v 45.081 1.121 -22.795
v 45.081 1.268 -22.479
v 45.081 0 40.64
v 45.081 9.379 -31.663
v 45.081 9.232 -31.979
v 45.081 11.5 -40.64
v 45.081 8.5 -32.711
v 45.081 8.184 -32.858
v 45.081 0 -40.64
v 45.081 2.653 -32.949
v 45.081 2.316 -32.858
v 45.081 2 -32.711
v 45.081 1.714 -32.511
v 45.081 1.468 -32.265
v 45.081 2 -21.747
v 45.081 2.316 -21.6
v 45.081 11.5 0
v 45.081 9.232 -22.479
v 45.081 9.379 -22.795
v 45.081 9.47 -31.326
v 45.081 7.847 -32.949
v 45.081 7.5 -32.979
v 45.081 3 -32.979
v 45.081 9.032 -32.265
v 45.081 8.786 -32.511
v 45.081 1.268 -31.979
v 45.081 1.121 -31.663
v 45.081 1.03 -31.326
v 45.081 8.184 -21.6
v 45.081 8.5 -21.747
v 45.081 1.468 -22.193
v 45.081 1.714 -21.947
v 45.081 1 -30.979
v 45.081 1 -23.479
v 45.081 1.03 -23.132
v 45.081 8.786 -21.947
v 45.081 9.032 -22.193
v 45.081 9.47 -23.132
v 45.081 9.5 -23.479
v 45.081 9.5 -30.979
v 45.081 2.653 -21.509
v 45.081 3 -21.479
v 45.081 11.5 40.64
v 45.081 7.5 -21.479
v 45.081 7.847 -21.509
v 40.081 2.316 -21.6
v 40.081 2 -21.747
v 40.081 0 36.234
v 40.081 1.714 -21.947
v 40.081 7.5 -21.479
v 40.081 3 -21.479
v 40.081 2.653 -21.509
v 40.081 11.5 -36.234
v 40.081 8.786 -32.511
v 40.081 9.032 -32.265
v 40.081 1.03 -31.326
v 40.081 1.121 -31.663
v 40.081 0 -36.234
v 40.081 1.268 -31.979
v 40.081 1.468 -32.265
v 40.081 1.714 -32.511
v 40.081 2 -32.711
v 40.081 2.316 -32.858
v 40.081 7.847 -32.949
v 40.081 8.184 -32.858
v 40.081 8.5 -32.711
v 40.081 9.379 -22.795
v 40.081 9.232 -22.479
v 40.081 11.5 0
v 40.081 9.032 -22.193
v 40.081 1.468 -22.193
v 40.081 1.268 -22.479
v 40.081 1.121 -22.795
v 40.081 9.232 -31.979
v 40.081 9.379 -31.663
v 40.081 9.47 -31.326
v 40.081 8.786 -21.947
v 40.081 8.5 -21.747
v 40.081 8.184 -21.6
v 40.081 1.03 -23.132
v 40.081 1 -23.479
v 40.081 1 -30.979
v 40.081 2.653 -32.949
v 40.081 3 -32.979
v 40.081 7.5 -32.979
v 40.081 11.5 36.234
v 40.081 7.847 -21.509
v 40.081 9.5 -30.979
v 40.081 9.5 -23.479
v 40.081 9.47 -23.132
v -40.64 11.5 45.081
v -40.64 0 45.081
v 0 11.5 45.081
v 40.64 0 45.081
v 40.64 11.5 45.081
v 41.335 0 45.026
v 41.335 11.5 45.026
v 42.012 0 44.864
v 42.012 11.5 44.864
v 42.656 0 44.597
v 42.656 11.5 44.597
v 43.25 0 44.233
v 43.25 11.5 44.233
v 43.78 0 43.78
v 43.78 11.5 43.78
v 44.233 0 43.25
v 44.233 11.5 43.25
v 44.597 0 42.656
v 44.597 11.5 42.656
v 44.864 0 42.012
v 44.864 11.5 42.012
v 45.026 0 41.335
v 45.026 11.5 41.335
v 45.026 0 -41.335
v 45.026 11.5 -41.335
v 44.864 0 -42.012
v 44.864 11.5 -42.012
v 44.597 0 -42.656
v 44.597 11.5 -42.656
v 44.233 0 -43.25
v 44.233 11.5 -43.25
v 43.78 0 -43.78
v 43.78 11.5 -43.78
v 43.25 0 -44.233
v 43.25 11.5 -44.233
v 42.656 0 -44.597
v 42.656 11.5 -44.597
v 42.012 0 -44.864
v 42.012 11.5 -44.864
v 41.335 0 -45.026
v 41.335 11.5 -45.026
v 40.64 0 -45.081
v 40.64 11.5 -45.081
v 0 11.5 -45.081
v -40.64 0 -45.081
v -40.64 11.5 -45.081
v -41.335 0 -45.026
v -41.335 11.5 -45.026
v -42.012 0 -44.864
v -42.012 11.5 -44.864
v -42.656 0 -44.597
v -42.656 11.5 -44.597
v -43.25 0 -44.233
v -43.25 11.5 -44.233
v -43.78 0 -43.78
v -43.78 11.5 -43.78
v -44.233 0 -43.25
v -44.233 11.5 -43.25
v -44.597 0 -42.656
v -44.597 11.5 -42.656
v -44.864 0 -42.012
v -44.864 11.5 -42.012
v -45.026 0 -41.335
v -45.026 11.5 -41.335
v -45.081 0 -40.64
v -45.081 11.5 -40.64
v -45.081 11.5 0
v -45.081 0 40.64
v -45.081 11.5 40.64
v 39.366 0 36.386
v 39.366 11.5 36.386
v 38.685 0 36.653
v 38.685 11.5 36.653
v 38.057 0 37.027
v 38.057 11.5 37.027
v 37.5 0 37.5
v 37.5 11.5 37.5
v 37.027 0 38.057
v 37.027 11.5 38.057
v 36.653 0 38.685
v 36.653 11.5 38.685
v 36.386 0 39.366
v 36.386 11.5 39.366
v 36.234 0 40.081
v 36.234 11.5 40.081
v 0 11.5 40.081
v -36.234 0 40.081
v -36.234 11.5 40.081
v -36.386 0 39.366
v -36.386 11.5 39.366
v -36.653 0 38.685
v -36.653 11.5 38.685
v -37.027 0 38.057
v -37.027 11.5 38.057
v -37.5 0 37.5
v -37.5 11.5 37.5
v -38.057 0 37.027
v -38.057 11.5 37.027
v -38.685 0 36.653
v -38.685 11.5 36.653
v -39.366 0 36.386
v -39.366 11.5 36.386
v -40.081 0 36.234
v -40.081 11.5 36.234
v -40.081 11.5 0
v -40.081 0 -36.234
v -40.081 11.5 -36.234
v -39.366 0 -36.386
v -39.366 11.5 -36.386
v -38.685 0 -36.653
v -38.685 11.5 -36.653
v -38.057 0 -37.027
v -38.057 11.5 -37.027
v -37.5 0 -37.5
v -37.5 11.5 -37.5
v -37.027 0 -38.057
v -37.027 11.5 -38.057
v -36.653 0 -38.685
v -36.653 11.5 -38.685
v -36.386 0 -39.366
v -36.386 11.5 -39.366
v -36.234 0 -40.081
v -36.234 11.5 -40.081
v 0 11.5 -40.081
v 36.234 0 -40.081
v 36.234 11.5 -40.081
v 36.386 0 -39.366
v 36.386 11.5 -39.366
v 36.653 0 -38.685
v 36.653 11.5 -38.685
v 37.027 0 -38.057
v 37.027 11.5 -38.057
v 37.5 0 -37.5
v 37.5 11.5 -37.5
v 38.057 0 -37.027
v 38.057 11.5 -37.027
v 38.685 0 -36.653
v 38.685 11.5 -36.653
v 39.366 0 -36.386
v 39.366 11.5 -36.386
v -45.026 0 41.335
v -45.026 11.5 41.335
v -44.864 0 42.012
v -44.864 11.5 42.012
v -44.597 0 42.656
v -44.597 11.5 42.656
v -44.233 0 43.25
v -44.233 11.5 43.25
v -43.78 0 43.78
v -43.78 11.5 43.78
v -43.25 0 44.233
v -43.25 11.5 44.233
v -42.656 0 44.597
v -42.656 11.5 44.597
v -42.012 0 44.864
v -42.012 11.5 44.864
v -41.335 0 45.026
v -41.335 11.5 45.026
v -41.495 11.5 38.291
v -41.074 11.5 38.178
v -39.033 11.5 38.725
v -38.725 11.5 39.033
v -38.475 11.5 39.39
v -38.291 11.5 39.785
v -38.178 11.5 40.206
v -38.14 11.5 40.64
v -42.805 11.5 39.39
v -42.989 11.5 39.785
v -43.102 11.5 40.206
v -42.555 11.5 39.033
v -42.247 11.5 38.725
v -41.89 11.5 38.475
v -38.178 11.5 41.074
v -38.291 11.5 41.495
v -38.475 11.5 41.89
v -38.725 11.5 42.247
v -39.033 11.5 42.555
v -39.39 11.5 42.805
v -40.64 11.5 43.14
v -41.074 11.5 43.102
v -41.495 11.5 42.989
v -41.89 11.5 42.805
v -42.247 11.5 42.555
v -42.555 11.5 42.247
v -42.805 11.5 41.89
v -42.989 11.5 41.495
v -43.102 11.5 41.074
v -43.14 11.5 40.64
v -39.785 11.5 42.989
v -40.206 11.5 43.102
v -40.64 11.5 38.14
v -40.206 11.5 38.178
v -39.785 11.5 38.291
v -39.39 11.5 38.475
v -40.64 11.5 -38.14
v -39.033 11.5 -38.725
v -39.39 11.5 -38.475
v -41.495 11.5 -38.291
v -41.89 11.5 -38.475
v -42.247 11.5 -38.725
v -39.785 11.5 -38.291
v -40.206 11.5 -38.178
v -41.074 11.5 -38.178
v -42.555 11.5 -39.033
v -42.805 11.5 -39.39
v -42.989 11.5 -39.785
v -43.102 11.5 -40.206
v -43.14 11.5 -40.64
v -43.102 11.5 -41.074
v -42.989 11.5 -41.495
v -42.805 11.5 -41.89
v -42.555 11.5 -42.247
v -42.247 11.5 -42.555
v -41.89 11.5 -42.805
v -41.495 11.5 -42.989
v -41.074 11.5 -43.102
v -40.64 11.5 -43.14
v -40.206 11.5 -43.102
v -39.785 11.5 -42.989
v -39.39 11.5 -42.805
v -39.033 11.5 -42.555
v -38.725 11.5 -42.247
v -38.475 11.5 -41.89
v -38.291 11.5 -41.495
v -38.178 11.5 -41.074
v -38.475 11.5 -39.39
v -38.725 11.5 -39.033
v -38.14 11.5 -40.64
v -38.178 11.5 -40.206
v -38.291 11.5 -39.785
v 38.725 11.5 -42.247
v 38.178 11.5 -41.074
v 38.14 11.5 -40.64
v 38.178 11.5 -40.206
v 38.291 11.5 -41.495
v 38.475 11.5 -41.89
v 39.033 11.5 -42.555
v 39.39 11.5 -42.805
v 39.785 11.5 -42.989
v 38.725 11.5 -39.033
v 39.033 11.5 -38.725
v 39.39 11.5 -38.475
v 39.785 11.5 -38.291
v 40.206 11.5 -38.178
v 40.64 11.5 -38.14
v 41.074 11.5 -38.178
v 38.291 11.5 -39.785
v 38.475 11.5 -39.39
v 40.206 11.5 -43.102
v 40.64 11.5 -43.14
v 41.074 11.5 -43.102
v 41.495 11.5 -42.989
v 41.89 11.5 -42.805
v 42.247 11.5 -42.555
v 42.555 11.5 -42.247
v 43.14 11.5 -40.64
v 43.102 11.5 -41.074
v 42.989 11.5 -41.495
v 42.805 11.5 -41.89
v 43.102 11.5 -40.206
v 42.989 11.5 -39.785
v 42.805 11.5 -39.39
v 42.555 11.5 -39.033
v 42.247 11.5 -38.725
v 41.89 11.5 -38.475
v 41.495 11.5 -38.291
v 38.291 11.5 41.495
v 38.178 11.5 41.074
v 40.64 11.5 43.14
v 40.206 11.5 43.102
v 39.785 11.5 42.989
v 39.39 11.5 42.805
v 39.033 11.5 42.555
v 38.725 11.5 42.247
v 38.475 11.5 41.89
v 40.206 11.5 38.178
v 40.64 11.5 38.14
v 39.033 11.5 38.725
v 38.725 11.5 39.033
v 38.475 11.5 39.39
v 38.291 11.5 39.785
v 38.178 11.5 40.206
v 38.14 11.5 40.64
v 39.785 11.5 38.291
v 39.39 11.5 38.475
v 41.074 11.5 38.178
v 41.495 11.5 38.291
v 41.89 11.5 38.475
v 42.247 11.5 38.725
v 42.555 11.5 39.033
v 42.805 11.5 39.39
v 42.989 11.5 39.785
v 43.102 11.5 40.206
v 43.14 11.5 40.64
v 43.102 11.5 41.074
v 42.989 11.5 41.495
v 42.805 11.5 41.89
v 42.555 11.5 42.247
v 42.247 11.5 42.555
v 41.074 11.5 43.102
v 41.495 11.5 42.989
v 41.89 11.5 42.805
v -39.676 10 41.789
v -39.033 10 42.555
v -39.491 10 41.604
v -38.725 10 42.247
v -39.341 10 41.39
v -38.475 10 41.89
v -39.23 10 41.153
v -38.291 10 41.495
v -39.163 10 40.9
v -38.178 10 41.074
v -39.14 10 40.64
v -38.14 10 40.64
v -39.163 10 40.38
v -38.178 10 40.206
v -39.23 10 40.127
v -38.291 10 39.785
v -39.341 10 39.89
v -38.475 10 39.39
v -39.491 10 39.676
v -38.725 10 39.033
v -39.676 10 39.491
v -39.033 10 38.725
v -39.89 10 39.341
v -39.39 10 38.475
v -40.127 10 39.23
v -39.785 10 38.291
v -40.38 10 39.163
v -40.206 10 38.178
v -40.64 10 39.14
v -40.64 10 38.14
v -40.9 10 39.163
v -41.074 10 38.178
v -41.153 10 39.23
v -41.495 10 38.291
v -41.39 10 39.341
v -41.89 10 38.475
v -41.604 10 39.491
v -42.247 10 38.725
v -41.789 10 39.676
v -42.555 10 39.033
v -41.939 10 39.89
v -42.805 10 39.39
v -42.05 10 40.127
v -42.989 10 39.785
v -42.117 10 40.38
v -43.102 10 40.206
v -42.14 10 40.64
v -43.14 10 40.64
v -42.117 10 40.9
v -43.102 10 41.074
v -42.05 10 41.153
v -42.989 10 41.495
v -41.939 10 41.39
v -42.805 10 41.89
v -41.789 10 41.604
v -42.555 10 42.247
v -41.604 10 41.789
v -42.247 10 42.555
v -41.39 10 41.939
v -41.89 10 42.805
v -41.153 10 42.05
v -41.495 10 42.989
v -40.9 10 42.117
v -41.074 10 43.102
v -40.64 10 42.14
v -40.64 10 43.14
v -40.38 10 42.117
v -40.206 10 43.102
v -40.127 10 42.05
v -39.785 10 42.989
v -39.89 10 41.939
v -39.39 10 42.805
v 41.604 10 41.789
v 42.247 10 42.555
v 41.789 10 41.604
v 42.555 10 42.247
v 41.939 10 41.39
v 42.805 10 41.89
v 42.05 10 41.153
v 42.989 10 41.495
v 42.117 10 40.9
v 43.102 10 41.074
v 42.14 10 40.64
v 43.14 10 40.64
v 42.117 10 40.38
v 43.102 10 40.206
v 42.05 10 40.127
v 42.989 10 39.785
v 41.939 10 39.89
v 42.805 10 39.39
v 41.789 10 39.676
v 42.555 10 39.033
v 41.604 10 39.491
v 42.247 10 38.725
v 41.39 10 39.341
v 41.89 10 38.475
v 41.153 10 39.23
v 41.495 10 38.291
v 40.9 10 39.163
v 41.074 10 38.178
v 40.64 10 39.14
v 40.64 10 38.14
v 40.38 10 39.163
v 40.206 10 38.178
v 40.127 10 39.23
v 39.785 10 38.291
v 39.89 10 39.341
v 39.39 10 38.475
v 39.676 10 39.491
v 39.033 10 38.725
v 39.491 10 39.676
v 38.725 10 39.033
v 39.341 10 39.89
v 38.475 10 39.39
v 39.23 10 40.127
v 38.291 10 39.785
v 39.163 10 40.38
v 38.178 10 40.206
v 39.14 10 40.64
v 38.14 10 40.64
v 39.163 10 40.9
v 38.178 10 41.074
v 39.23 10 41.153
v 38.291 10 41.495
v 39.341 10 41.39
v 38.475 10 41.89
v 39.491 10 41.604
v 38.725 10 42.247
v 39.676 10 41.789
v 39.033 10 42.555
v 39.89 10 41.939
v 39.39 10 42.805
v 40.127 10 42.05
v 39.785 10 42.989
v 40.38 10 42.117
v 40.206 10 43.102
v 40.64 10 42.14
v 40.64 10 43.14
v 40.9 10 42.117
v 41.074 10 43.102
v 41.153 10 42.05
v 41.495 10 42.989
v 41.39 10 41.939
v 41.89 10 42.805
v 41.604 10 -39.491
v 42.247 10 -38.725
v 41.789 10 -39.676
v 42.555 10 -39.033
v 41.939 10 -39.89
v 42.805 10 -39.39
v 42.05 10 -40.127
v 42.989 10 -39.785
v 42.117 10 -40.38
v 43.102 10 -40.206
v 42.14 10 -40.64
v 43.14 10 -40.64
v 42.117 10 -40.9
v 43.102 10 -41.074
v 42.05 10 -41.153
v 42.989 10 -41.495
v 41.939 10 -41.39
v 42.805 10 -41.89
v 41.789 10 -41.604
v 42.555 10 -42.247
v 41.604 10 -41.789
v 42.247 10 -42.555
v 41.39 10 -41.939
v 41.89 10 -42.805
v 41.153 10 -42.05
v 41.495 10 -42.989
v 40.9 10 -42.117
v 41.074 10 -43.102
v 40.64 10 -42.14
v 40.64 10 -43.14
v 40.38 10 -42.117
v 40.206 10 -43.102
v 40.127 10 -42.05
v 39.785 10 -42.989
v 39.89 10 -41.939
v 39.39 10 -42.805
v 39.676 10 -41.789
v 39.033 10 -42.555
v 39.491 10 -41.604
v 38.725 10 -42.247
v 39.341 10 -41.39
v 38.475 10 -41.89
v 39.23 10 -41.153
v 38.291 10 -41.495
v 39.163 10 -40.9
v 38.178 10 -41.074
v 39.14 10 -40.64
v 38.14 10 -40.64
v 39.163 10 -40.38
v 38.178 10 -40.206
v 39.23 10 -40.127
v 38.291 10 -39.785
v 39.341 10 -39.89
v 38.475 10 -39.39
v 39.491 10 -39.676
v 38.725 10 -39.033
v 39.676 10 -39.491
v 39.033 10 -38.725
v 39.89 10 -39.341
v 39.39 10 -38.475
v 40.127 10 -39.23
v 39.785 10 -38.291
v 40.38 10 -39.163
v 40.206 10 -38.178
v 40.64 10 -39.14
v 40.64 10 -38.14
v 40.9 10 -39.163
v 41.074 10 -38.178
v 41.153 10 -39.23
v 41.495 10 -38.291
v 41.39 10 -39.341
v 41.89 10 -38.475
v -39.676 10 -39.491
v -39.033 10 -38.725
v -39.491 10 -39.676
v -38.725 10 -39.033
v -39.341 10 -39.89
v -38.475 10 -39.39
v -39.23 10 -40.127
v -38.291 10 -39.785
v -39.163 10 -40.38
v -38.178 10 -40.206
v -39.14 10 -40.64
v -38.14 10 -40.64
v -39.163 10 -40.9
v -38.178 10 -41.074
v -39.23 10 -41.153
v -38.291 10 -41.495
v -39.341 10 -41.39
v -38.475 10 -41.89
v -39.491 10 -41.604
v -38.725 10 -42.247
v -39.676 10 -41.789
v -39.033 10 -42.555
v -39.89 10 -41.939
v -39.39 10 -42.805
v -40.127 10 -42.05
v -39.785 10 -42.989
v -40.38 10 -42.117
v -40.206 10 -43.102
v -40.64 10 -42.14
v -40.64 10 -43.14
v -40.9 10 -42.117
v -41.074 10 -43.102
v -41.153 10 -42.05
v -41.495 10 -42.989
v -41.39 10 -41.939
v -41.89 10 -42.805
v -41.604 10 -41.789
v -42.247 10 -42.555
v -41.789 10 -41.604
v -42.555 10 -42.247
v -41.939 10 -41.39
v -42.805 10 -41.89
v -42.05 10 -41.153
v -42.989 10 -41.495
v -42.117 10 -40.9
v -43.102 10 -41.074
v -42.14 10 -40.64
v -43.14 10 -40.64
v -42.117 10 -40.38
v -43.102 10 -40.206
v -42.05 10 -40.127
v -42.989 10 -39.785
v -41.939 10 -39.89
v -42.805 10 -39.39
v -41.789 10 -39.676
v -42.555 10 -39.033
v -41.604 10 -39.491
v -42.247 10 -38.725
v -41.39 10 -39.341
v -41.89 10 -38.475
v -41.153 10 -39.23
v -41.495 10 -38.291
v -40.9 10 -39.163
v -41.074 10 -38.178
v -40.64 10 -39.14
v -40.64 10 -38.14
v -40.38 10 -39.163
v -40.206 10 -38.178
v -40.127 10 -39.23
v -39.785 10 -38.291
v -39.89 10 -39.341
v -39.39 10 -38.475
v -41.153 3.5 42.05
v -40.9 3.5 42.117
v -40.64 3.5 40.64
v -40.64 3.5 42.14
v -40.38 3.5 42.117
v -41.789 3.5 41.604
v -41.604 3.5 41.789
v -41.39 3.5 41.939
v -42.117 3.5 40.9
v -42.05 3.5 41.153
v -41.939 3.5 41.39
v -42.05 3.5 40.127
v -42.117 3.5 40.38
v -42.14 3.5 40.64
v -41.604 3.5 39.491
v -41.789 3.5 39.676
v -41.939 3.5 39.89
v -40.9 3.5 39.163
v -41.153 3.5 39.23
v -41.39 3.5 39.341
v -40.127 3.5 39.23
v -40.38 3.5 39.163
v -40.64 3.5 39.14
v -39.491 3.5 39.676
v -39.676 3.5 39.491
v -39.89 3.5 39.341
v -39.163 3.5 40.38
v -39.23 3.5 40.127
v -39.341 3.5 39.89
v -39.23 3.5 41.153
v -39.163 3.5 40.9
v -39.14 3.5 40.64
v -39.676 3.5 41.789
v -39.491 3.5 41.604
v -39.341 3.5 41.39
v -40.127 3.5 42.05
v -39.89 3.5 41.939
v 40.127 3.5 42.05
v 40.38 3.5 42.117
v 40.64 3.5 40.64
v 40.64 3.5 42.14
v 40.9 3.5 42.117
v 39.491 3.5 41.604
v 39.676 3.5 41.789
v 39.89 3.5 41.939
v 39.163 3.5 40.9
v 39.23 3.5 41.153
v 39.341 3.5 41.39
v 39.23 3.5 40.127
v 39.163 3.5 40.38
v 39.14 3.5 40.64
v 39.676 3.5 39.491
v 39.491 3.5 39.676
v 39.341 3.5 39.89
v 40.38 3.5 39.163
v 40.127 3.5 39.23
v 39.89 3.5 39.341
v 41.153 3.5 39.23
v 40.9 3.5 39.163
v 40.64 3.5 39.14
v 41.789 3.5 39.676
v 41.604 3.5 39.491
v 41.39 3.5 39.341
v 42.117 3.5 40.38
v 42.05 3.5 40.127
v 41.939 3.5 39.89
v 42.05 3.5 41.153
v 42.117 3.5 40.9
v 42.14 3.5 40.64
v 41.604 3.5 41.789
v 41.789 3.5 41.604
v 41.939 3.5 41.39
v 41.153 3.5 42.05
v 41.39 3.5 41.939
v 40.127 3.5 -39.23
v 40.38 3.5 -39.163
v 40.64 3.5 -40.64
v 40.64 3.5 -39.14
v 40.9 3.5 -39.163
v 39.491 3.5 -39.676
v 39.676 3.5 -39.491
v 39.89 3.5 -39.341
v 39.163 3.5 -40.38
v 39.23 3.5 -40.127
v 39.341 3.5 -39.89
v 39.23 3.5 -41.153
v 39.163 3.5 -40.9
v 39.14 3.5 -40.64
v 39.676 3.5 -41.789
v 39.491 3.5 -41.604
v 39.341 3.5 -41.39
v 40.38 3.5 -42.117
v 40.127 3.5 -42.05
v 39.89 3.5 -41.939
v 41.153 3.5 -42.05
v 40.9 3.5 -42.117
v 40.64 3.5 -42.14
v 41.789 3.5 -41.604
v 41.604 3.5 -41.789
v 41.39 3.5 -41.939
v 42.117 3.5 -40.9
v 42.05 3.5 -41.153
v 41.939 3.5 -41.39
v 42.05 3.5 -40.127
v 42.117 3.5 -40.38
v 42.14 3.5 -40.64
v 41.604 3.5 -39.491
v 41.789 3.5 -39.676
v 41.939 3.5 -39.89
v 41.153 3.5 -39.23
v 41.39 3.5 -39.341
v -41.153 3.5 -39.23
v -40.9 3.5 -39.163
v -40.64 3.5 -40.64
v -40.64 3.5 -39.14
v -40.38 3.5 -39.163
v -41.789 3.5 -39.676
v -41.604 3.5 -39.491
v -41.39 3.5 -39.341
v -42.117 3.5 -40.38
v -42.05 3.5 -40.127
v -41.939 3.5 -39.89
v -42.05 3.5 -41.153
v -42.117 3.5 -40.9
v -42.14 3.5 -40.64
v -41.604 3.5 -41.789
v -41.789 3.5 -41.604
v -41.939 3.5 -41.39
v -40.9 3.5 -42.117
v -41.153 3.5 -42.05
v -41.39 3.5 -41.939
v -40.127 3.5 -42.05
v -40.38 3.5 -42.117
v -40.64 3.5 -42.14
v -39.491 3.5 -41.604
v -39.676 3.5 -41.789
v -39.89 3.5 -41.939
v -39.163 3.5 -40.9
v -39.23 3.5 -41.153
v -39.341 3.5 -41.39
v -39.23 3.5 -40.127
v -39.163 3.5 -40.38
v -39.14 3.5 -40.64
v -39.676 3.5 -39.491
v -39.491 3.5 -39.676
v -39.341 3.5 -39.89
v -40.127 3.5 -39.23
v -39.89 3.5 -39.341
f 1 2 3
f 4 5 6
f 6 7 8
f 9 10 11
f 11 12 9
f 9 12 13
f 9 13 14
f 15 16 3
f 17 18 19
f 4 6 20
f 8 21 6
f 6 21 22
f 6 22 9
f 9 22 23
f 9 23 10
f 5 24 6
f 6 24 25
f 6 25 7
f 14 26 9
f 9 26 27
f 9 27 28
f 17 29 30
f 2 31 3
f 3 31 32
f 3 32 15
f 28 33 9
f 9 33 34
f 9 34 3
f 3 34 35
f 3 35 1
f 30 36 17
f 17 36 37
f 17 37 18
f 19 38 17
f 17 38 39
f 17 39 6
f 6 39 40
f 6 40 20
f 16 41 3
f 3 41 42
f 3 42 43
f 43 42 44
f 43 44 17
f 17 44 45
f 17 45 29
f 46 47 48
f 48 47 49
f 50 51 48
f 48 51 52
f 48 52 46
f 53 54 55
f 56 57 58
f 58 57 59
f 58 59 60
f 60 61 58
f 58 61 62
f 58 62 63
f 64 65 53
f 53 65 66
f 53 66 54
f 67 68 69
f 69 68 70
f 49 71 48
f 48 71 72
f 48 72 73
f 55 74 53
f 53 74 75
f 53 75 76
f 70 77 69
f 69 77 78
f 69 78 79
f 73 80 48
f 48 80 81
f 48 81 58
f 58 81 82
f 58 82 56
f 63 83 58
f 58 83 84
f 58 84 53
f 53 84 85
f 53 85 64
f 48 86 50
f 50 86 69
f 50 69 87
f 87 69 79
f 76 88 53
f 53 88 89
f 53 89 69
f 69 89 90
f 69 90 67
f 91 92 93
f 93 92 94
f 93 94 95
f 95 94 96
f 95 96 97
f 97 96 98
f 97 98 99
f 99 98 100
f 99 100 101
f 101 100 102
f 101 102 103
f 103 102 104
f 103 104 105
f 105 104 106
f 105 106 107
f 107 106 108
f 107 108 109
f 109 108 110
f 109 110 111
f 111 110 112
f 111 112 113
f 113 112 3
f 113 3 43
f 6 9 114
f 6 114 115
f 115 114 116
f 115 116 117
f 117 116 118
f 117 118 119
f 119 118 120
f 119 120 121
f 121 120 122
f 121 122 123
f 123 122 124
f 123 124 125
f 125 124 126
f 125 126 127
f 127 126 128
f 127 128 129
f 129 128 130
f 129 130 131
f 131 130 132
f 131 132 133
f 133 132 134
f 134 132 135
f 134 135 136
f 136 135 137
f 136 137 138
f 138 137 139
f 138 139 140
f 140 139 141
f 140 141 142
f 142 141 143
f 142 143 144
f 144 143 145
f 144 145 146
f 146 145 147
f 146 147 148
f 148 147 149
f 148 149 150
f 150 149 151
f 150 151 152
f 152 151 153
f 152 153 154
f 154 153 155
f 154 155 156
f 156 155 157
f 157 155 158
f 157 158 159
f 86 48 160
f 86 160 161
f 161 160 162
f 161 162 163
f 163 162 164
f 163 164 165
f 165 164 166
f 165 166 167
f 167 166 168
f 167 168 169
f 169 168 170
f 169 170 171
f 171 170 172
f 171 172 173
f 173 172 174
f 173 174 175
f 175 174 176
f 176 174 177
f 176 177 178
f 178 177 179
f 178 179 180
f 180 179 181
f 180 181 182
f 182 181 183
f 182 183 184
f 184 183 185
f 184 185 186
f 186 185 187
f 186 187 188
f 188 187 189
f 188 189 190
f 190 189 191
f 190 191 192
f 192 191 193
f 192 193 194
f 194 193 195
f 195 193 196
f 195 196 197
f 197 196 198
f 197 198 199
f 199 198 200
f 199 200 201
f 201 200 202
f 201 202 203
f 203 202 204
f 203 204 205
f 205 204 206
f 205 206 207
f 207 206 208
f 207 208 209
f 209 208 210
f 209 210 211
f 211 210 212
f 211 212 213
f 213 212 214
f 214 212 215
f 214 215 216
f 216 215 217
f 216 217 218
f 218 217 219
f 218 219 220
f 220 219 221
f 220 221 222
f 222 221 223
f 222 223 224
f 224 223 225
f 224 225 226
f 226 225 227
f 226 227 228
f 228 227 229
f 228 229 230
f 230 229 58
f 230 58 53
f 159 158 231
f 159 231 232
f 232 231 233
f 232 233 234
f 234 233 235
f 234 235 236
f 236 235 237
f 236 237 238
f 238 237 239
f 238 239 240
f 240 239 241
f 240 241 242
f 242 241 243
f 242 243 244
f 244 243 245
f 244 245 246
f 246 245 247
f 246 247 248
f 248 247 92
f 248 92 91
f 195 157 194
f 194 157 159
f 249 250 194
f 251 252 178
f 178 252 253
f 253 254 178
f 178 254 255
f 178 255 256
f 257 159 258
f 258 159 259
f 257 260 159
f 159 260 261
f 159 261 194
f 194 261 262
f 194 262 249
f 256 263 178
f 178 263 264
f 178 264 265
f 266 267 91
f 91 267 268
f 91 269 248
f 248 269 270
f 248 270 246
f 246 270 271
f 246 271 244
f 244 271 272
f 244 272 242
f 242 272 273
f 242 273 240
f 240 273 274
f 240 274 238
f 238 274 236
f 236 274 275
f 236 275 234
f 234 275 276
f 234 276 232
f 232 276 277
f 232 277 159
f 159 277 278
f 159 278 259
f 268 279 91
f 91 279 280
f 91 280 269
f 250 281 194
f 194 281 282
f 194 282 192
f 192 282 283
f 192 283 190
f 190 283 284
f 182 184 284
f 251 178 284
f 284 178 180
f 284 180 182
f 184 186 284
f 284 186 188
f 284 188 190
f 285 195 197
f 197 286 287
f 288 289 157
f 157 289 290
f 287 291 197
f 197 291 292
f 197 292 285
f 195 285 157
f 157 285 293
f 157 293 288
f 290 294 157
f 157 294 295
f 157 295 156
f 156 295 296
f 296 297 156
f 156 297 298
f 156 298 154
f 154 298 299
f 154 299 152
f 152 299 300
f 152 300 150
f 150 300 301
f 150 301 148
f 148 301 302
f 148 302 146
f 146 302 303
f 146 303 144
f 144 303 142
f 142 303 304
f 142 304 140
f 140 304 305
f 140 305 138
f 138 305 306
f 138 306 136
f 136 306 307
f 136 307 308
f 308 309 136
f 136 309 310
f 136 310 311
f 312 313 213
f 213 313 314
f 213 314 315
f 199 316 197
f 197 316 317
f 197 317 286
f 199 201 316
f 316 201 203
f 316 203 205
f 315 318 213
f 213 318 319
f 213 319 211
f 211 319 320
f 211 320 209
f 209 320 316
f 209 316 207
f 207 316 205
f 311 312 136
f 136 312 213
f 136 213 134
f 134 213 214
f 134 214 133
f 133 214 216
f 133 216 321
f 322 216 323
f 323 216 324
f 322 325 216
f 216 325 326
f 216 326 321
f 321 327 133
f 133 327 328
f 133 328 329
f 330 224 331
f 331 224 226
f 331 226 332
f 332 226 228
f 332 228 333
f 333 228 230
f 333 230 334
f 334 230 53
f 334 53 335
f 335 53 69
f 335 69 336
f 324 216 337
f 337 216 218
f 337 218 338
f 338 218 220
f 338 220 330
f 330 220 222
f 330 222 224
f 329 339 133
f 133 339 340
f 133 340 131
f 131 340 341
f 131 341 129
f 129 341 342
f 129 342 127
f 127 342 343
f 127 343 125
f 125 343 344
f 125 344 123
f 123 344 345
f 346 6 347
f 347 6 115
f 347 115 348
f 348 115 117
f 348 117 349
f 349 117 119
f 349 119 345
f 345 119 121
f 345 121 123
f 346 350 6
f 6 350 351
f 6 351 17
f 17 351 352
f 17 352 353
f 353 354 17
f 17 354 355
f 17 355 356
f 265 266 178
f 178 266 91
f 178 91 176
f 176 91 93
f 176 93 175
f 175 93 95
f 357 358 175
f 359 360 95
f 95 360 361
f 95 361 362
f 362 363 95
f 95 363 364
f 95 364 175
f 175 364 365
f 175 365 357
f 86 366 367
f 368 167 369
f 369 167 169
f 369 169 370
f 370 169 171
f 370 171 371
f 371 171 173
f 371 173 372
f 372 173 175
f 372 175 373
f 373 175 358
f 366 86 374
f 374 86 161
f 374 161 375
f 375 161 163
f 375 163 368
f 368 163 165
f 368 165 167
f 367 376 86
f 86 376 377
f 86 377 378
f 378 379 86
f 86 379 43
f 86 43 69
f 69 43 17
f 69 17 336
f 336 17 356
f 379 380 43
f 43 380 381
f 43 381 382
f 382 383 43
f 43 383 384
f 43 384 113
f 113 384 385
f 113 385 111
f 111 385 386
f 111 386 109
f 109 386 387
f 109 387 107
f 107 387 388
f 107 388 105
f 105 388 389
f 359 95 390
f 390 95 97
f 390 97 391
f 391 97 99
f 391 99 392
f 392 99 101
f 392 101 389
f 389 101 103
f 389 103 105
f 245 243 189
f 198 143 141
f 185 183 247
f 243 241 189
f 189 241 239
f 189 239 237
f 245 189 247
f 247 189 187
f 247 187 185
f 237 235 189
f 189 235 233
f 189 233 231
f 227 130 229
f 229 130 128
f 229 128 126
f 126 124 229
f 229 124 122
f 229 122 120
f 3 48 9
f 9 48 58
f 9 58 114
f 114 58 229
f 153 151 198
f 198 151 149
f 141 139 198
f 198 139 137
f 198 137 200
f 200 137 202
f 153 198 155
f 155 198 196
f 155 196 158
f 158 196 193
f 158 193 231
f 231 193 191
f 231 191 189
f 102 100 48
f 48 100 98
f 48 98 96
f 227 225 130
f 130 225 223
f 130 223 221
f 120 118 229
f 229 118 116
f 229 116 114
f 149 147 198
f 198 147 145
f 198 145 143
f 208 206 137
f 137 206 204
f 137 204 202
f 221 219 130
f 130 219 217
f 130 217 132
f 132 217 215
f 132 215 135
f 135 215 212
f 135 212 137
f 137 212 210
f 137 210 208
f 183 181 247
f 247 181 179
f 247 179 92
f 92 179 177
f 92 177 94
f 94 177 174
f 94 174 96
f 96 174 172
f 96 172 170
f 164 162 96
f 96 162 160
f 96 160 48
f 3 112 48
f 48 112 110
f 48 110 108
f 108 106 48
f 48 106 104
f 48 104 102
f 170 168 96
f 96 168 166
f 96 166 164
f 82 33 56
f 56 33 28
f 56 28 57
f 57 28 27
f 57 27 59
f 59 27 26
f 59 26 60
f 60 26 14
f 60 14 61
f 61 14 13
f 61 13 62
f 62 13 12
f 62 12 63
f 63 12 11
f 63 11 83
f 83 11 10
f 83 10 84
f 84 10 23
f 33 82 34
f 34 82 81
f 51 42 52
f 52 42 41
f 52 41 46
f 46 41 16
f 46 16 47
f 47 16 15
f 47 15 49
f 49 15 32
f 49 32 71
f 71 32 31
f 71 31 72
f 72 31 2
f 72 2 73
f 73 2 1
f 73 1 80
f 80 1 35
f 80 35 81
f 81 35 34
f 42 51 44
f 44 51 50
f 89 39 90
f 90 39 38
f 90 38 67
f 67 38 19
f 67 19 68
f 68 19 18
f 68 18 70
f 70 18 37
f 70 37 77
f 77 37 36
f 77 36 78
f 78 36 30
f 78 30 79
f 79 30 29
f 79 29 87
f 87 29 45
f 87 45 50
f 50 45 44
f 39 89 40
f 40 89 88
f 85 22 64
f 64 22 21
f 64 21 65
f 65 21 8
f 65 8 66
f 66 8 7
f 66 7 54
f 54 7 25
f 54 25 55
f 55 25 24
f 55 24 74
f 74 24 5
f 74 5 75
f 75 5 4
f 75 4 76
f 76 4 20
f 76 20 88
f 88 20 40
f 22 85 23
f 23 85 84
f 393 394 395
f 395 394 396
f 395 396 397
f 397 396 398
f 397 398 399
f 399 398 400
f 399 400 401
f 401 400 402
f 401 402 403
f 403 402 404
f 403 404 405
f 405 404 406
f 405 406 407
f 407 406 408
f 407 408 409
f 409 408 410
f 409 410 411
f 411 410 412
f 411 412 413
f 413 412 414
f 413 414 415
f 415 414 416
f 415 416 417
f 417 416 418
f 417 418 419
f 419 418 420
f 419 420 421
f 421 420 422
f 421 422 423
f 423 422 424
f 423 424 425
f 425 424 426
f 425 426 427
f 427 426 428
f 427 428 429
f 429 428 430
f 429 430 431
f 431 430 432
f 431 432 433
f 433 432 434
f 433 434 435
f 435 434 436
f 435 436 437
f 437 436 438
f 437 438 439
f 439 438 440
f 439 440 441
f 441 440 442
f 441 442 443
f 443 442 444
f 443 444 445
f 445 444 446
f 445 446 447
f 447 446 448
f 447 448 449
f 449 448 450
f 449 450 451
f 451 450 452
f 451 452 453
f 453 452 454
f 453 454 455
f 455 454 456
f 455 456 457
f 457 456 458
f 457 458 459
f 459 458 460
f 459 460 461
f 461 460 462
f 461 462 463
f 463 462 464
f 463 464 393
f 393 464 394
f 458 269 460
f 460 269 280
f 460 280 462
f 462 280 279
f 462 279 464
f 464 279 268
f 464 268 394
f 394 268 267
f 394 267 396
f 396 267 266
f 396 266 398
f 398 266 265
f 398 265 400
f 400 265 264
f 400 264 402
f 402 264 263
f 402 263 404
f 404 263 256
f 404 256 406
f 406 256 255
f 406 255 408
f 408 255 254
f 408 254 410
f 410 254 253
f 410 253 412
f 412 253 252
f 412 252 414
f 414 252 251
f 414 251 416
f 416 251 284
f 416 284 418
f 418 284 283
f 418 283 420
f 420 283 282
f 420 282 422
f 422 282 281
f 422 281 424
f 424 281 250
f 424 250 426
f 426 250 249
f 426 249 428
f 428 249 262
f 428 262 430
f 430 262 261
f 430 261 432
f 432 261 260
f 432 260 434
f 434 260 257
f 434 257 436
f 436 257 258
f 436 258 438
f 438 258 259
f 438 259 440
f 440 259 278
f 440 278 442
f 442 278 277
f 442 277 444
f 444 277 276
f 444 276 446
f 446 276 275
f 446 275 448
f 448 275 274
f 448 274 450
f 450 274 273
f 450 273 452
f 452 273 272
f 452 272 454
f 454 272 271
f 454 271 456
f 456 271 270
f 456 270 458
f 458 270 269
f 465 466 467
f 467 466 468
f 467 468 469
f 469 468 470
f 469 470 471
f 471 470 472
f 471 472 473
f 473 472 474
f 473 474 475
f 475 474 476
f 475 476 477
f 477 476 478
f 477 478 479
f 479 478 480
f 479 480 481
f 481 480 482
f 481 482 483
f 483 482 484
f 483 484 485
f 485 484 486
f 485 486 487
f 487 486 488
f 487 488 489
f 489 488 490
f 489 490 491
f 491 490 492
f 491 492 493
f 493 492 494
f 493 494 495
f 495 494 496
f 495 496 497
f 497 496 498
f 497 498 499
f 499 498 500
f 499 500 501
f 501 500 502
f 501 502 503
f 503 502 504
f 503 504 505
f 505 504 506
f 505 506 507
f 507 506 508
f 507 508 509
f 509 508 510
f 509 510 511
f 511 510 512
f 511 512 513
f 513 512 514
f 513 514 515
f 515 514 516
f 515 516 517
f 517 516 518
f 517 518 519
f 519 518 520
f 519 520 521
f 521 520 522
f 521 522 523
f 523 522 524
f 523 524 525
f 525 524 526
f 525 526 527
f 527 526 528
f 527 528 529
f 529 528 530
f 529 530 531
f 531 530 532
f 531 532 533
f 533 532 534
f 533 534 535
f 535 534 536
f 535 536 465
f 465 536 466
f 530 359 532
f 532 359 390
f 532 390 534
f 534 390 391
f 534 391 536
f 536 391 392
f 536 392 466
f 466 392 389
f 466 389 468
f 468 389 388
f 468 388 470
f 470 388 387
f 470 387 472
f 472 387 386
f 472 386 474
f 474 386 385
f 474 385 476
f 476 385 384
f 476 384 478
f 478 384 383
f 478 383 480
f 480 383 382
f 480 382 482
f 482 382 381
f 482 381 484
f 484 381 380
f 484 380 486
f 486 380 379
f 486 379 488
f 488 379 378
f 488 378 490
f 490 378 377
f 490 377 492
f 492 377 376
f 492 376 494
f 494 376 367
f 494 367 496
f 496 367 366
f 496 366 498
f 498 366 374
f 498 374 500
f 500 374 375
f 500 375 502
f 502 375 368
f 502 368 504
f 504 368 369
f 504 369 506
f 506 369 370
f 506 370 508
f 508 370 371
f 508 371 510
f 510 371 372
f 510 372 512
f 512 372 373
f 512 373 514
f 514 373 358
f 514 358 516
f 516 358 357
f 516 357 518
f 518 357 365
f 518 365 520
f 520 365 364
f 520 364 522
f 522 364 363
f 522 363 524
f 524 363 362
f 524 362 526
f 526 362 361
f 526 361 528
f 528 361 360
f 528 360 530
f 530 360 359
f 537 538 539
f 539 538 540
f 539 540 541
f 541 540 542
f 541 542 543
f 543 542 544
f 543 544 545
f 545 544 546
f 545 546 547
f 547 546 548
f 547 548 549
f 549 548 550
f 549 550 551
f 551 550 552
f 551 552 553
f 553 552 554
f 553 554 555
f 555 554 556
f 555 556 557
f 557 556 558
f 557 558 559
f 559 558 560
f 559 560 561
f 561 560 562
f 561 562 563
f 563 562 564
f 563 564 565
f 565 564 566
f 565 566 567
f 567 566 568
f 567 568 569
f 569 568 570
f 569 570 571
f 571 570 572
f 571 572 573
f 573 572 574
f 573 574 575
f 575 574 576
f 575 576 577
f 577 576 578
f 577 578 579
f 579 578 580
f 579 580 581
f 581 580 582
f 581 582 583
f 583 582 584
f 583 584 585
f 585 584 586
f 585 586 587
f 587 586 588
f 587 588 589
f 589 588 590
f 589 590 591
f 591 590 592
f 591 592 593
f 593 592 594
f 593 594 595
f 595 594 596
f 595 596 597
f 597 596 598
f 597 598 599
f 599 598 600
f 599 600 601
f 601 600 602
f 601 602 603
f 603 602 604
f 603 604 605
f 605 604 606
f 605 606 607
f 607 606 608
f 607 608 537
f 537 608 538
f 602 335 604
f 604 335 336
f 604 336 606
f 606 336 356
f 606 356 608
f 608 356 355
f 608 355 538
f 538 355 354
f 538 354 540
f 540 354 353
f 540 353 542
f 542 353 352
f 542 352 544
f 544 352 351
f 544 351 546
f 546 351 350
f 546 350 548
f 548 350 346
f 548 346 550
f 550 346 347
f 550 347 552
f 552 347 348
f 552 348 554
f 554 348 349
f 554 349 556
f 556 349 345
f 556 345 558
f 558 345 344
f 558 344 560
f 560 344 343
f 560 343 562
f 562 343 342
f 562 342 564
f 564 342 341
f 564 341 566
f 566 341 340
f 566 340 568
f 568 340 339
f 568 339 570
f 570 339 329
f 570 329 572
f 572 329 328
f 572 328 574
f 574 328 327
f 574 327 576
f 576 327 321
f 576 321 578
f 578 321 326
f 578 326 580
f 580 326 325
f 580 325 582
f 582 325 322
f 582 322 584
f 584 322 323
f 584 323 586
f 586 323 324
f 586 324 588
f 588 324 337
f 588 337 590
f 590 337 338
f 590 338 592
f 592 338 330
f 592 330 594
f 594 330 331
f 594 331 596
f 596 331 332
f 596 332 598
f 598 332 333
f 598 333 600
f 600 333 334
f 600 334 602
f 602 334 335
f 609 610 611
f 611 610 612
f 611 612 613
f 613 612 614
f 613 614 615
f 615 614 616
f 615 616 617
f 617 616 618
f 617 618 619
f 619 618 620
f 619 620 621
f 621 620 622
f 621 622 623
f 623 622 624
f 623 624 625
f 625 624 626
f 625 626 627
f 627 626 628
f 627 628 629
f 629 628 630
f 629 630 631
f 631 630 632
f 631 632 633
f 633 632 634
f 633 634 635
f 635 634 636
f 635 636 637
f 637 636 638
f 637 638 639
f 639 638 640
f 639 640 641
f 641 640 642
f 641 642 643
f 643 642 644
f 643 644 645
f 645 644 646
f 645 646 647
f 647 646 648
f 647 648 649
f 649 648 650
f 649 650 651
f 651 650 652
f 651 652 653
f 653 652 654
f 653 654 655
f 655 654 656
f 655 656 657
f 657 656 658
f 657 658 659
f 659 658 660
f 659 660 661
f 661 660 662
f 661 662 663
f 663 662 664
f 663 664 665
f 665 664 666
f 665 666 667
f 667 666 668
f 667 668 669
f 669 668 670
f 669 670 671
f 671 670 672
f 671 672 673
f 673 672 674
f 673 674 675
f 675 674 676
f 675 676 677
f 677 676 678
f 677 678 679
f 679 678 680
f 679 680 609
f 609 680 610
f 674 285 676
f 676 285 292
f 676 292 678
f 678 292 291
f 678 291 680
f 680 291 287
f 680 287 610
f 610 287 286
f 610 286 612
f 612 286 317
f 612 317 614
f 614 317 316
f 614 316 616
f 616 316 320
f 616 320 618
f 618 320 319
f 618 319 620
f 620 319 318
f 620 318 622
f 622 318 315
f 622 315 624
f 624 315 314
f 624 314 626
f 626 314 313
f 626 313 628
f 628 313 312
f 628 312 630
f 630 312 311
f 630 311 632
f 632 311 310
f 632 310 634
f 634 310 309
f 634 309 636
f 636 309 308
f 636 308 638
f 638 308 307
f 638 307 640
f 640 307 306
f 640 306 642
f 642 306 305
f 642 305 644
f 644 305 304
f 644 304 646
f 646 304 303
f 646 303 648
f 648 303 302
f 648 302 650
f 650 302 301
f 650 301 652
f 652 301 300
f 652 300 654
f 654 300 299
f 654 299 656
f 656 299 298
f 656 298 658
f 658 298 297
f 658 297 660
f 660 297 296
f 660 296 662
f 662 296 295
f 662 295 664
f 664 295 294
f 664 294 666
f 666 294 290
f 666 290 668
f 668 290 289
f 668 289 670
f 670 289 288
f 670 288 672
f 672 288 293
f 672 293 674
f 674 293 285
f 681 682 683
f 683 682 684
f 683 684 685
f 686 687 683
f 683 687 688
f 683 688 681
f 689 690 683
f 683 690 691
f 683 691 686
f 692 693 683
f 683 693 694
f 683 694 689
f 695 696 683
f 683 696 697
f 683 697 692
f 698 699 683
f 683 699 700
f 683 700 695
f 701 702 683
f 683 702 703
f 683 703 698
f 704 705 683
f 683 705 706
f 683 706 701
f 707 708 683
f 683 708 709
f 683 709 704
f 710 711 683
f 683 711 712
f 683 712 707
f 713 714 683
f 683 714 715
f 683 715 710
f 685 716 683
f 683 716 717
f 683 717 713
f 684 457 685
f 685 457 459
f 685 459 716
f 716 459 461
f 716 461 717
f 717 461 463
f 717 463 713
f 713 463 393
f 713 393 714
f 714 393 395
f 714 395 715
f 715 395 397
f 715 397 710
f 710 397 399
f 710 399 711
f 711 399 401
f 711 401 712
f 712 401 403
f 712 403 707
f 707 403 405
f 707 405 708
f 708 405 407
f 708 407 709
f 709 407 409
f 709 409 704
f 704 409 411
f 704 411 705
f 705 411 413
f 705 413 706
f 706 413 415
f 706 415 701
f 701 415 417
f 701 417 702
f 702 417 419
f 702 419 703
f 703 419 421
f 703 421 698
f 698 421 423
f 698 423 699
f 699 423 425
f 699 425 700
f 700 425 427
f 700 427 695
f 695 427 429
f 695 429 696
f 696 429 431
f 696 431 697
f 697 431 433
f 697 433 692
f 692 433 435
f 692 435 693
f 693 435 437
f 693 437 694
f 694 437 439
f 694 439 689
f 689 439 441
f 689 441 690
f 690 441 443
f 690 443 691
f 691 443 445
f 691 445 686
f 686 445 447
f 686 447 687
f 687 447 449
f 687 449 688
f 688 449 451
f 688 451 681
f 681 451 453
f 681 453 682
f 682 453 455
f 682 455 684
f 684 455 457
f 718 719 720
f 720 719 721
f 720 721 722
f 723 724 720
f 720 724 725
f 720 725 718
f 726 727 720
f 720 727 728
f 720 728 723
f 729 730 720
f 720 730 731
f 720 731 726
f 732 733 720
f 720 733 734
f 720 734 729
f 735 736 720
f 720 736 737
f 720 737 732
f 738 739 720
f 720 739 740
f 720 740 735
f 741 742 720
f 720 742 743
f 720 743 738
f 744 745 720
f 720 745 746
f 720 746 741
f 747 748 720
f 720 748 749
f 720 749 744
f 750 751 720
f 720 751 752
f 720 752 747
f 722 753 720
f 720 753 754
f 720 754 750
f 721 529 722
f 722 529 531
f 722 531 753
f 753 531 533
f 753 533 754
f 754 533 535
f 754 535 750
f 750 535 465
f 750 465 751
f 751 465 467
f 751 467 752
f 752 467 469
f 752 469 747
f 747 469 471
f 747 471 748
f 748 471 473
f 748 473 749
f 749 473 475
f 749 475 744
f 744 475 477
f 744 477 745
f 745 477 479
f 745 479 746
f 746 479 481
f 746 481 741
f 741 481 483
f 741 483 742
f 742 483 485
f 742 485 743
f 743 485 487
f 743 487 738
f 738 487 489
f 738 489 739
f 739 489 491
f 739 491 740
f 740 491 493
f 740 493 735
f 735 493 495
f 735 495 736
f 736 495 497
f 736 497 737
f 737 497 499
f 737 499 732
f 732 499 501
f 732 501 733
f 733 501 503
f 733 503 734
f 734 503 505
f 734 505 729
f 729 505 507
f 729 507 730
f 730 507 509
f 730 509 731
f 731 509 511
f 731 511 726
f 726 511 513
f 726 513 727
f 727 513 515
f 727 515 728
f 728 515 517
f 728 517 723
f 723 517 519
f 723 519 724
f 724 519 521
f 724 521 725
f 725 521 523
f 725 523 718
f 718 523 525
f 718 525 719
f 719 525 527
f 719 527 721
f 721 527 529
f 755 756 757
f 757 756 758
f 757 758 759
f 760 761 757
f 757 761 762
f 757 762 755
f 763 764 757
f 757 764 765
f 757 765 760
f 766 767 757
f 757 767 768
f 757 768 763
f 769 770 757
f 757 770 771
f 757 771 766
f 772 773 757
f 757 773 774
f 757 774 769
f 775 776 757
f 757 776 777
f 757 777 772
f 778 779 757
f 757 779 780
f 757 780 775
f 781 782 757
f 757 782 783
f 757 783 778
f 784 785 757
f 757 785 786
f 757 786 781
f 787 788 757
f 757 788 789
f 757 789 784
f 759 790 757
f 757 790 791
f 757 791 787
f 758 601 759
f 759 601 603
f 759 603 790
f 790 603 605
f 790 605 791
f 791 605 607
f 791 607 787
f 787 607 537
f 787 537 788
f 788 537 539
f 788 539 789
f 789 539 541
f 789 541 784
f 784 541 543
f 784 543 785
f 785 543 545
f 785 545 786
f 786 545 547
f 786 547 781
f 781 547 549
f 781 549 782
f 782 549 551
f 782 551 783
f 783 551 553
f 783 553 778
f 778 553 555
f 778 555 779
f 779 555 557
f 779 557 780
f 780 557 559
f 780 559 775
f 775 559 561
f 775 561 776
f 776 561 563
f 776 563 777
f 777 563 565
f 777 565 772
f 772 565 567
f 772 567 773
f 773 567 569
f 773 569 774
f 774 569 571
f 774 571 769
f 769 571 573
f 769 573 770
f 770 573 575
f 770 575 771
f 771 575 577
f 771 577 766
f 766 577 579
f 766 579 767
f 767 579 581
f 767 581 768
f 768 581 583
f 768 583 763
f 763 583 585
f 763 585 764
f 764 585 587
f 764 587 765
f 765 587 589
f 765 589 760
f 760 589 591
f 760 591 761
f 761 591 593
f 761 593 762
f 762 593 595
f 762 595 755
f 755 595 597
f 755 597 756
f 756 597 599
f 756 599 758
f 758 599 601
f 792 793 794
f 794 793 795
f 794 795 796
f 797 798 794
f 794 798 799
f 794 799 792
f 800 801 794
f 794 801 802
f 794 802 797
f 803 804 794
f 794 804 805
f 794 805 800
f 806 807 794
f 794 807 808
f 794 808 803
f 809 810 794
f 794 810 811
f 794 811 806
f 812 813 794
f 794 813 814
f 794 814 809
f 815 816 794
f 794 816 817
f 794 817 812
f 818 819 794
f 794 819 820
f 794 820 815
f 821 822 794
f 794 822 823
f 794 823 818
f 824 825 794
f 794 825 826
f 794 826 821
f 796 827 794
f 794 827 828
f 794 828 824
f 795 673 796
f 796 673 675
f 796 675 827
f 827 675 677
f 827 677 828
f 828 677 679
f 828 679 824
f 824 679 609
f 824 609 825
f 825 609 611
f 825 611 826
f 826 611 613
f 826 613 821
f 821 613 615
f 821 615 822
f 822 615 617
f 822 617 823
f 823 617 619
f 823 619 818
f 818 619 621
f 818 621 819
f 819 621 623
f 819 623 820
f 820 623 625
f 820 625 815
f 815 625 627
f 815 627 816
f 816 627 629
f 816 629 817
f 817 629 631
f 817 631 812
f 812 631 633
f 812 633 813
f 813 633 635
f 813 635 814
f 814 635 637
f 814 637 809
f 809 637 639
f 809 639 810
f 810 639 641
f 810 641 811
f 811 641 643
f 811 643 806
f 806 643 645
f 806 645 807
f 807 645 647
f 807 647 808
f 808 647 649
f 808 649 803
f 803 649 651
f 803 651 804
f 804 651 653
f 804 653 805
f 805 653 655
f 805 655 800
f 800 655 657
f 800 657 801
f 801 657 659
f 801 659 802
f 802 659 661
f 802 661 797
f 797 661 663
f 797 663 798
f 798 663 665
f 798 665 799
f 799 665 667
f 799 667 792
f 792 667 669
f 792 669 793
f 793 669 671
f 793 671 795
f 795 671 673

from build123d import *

# Parameters (mm, degrees)
SKETCH1_W           = 7.937979337
SKETCH1_H           = 0.559115352
BOSS_EXTRUDE1_DEPTH = 11.5
SKETCH2_R           = 1.5
CUT_EXTRUDE1_DEPTH  = 8
CUT_EXTRUDE2_DEPTH  = 8
SKETCH4_R           = 2.5
CUT_EXTRUDE3_DEPTH  = 1.5


with BuildPart() as part:
    # Sketch1 → Boss-Extrude1 (new body)
    with BuildSketch(Plane(origin=(0, 0, 0), x_dir=(1, 0, 0), z_dir=(0, 1, 0))):
        with BuildLine():
            Line((-40.080884648, -36.23445276), (-40.080884648, 18.423402639))
            Line((-40.080884648, 18.423402639), (-40.64, 18.423402639))
            Line((-40.64, 18.423402639), (-40.64, -36.199115352))
            ThreePointArc((-40.64, -36.199115352), (-40.359884529, -36.207958509), (-40.080884648, -36.23445276))
        make_face()
        with BuildLine():
            Line((-40.080884648, 18.423402639), (-40.080884648, 36.23445276))
            ThreePointArc((-40.080884648, 36.23445276), (-40.359884529, 36.207958509), (-40.64, 36.199115352))
            Line((-40.64, 36.199115352), (-40.64, 18.423402639))
            Line((-40.64, 18.423402639), (-40.080884648, 18.423402639))
        make_face()
        with BuildLine():
            Line((-36.23445276, 40.080884648), (-7.937979337, 40.080884648))
            Line((-7.937979337, 40.080884648), (-7.937979337, 40.64))
            Line((-7.937979337, 40.64), (-36.199115352, 40.64))
            ThreePointArc((-36.199115352, 40.64), (-36.207958509, 40.359884529), (-36.23445276, 40.080884648))
        make_face()
        with BuildLine():
            Line((0, 40.64), (0, 40.080884648))
            Line((0, 40.080884648), (36.23445276, 40.080884648))
            ThreePointArc((36.23445276, 40.080884648), (36.207958509, 40.359884529), (36.199115352, 40.64))
            Line((36.199115352, 40.64), (0, 40.64))
        make_face()
        with Locations((-3.968989669, 40.360442324)):
            Rectangle(SKETCH1_W, SKETCH1_H)
        with BuildLine():
            ThreePointArc((40.64, 36.199115352), (40.359884529, 36.207958509), (40.080884648, 36.23445276))
            Line((40.080884648, 36.23445276), (40.080884648, 28.268480093))
            Line((40.080884648, 28.268480093), (40.64, 28.268480093))
            Line((40.64, 28.268480093), (40.64, 36.199115352))
        make_face()
        with BuildLine():
            Line((40.64, 28.268480093), (40.080884648, 28.268480093))
            Line((40.080884648, 28.268480093), (40.080884648, -36.23445276))
            ThreePointArc((40.080884648, -36.23445276), (40.359884529, -36.207958509), (40.64, -36.199115352))
            Line((40.64, -36.199115352), (40.64, 28.268480093))
        make_face()
        with BuildLine():
            ThreePointArc((40.64, -36.199115352), (40.359884529, -36.207958509), (40.080884648, -36.23445276))
            ThreePointArc((40.080884648, -36.23445276), (37.499820351, -37.499820351), (36.23445276, -40.080884648))
            ThreePointArc((36.23445276, -40.080884648), (36.207958509, -40.359884529), (36.199115352, -40.64))
            Line((36.199115352, -40.64), (40.64, -40.64))
            Line((40.64, -40.64), (40.64, -36.199115352))
        make_face()
        with BuildLine():
            ThreePointArc((45.080884648, -40.64), (43.780179649, -37.499820351), (40.64, -36.199115352))
            Line((40.64, -36.199115352), (40.64, -40.64))
            Line((40.64, -40.64), (36.199115352, -40.64))
            ThreePointArc((36.199115352, -40.64), (37.499820351, -43.780179649), (40.64, -45.080884648))
            ThreePointArc((40.64, -45.080884648), (43.780179649, -43.780179649), (45.080884648, -40.64))
        make_face()
        with BuildLine():
            ThreePointArc((36.199115352, -40.64), (36.207958509, -40.359884529), (36.23445276, -40.080884648))
            Line((36.23445276, -40.080884648), (27.085817246, -40.080884648))
            Line((27.085817246, -40.080884648), (27.085817246, -40.64))
            Line((27.085817246, -40.64), (36.199115352, -40.64))
        make_face()
        with BuildLine():
            Line((27.085817246, -40.080884648), (-36.23445276, -40.080884648))
            ThreePointArc((-36.23445276, -40.080884648), (-36.207958509, -40.359884529), (-36.199115352, -40.64))
            Line((-36.199115352, -40.64), (27.085817246, -40.64))
            Line((27.085817246, -40.64), (27.085817246, -40.080884648))
        make_face()
        with BuildLine():
            Line((-40.64, -40.64), (-40.64, -36.199115352))
            ThreePointArc((-40.64, -36.199115352), (-43.780179649, -37.499820351), (-45.080884648, -40.64))
            ThreePointArc((-45.080884648, -40.64), (-43.780179649, -43.780179649), (-40.64, -45.080884648))
            ThreePointArc((-40.64, -45.080884648), (-37.499820351, -43.780179649), (-36.199115352, -40.64))
            Line((-36.199115352, -40.64), (-40.64, -40.64))
        make_face()
        with BuildLine():
            ThreePointArc((-36.23445276, -40.080884648), (-37.499820351, -37.499820351), (-40.080884648, -36.23445276))
            ThreePointArc((-40.080884648, -36.23445276), (-40.359884529, -36.207958509), (-40.64, -36.199115352))
            Line((-40.64, -36.199115352), (-40.64, -40.64))
            Line((-40.64, -40.64), (-36.199115352, -40.64))
            ThreePointArc((-36.199115352, -40.64), (-36.207958509, -40.359884529), (-36.23445276, -40.080884648))
        make_face()
        with BuildLine():
            Line((27.085817246, -40.64), (-36.199115352, -40.64))
            ThreePointArc((-36.199115352, -40.64), (-37.499820351, -43.780179649), (-40.64, -45.080884648))
            Line((-40.64, -45.080884648), (27.085817246, -45.080884648))
            Line((27.085817246, -45.080884648), (27.085817246, -40.64))
        make_face()
        with BuildLine():
            Line((-40.64, -36.199115352), (-40.64, 18.423402639))
            Line((-40.64, 18.423402639), (-45.080884648, 18.423402639))
            Line((-45.080884648, 18.423402639), (-45.080884648, -40.64))
            ThreePointArc((-45.080884648, -40.64), (-43.780179649, -37.499820351), (-40.64, -36.199115352))
        make_face()
        with BuildLine():
            ThreePointArc((40.64, -45.080884648), (37.499820351, -43.780179649), (36.199115352, -40.64))
            Line((36.199115352, -40.64), (27.085817246, -40.64))
            Line((27.085817246, -40.64), (27.085817246, -45.080884648))
            Line((27.085817246, -45.080884648), (40.64, -45.080884648))
        make_face()
        with BuildLine():
            Line((45.080884648, 28.268480093), (40.64, 28.268480093))
            Line((40.64, 28.268480093), (40.64, -36.199115352))
            ThreePointArc((40.64, -36.199115352), (43.780179649, -37.499820351), (45.080884648, -40.64))
            Line((45.080884648, -40.64), (45.080884648, 28.268480093))
        make_face()
        with BuildLine():
            ThreePointArc((45.080884648, 40.64), (43.780179649, 37.499820351), (40.64, 36.199115352))
            Line((40.64, 36.199115352), (40.64, 28.268480093))
            Line((40.64, 28.268480093), (45.080884648, 28.268480093))
            Line((45.080884648, 28.268480093), (45.080884648, 40.64))
        make_face()
        with BuildLine():
            ThreePointArc((40.64, 45.080884648), (37.499820351, 43.780179649), (36.199115352, 40.64))
            Line((36.199115352, 40.64), (40.64, 40.64))
            Line((40.64, 40.64), (40.64, 36.199115352))
            ThreePointArc((40.64, 36.199115352), (43.780179649, 37.499820351), (45.080884648, 40.64))
            ThreePointArc((45.080884648, 40.64), (43.780179649, 43.780179649), (40.64, 45.080884648))
        make_face()
        with BuildLine():
            ThreePointArc((36.199115352, 40.64), (36.207958509, 40.359884529), (36.23445276, 40.080884648))
            ThreePointArc((36.23445276, 40.080884648), (37.499820351, 37.499820351), (40.080884648, 36.23445276))
            ThreePointArc((40.080884648, 36.23445276), (40.359884529, 36.207958509), (40.64, 36.199115352))
            Line((40.64, 36.199115352), (40.64, 40.64))
            Line((40.64, 40.64), (36.199115352, 40.64))
        make_face()
        with BuildLine():
            Line((-7.937979337, 40.64), (0, 40.64))
            Line((0, 40.64), (36.199115352, 40.64))
            ThreePointArc((36.199115352, 40.64), (37.499820351, 43.780179649), (40.64, 45.080884648))
            Line((40.64, 45.080884648), (-7.937979337, 45.080884648))
            Line((-7.937979337, 45.080884648), (-7.937979337, 40.64))
        make_face()
        with BuildLine():
            Line((-36.199115352, 40.64), (-7.937979337, 40.64))
            Line((-7.937979337, 40.64), (-7.937979337, 45.080884648))
            Line((-7.937979337, 45.080884648), (-40.64, 45.080884648))
            ThreePointArc((-40.64, 45.080884648), (-37.499820351, 43.780179649), (-36.199115352, 40.64))
        make_face()
        with BuildLine():
            Line((-40.64, 40.64), (-36.199115352, 40.64))
            ThreePointArc((-36.199115352, 40.64), (-37.499820351, 43.780179649), (-40.64, 45.080884648))
            ThreePointArc((-40.64, 45.080884648), (-43.780179649, 43.780179649), (-45.080884648, 40.64))
            ThreePointArc((-45.080884648, 40.64), (-43.780179649, 37.499820351), (-40.64, 36.199115352))
            Line((-40.64, 36.199115352), (-40.64, 40.64))
        make_face()
        with BuildLine():
            ThreePointArc((-40.080884648, 36.23445276), (-37.499820351, 37.499820351), (-36.23445276, 40.080884648))
            ThreePointArc((-36.23445276, 40.080884648), (-36.207958509, 40.359884529), (-36.199115352, 40.64))
            Line((-36.199115352, 40.64), (-40.64, 40.64))
            Line((-40.64, 40.64), (-40.64, 36.199115352))
            ThreePointArc((-40.64, 36.199115352), (-40.359884529, 36.207958509), (-40.080884648, 36.23445276))
        make_face()
        with BuildLine():
            Line((-40.64, 18.423402639), (-40.64, 36.199115352))
            ThreePointArc((-40.64, 36.199115352), (-43.780179649, 37.499820351), (-45.080884648, 40.64))
            Line((-45.080884648, 40.64), (-45.080884648, 18.423402639))
            Line((-45.080884648, 18.423402639), (-40.64, 18.423402639))
        make_face()
    extrude(amount=BOSS_EXTRUDE1_DEPTH)

    # Sketch2 → Cut-Extrude1 (cut)
    with BuildSketch(Plane(origin=(0, 11.5, 0), x_dir=(1, 0, 0), z_dir=(0, 1, 0))):
        with Locations((-40.64, 40.64)):
            Circle(SKETCH2_R)
        with Locations((40.64, 40.64)):
            Circle(SKETCH2_R)
        with Locations((40.64, -40.64)):
            Circle(SKETCH2_R)
        with Locations((-40.64, -40.64)):
            Circle(SKETCH2_R)
    extrude(amount=-CUT_EXTRUDE1_DEPTH, mode=Mode.SUBTRACT)

    # Sketch3 → Cut-Extrude2 (cut)
    with BuildSketch(Plane(origin=(45.080884648, 0, 0), x_dir=(0, 0, -1), z_dir=(1, 0, 0))):
        with BuildLine():
            Line((30.979, 9.5), (23.479, 9.5))
            ThreePointArc((23.479, 9.5), (22.064786438, 8.914213562), (21.479, 7.5))
            Line((21.479, 7.5), (21.479, 3))
            ThreePointArc((21.479, 3), (22.064786438, 1.585786438), (23.479, 1))
            Line((23.479, 1), (30.979, 1))
            ThreePointArc((30.979, 1), (32.393213562, 1.585786438), (32.979, 3))
            Line((32.979, 3), (32.979, 7.5))
            ThreePointArc((32.979, 7.5), (32.393213562, 8.914213562), (30.979, 9.5))
        make_face()
    extrude(amount=-CUT_EXTRUDE2_DEPTH, mode=Mode.SUBTRACT)

    # Sketch4 → Cut-Extrude3 (cut)
    with BuildSketch(Plane(origin=(0, 11.5, 0), x_dir=(1, 0, 0), z_dir=(0, 1, 0))):
        with Locations((-40.64, 40.64)):
            Circle(SKETCH4_R)
        with Locations((40.64, 40.64)):
            Circle(SKETCH4_R)
        with Locations((40.64, -40.64)):
            Circle(SKETCH4_R)
        with Locations((-40.64, -40.64)):
            Circle(SKETCH4_R)
    extrude(amount=-CUT_EXTRUDE3_DEPTH, mode=Mode.SUBTRACT)


solid = part.part
